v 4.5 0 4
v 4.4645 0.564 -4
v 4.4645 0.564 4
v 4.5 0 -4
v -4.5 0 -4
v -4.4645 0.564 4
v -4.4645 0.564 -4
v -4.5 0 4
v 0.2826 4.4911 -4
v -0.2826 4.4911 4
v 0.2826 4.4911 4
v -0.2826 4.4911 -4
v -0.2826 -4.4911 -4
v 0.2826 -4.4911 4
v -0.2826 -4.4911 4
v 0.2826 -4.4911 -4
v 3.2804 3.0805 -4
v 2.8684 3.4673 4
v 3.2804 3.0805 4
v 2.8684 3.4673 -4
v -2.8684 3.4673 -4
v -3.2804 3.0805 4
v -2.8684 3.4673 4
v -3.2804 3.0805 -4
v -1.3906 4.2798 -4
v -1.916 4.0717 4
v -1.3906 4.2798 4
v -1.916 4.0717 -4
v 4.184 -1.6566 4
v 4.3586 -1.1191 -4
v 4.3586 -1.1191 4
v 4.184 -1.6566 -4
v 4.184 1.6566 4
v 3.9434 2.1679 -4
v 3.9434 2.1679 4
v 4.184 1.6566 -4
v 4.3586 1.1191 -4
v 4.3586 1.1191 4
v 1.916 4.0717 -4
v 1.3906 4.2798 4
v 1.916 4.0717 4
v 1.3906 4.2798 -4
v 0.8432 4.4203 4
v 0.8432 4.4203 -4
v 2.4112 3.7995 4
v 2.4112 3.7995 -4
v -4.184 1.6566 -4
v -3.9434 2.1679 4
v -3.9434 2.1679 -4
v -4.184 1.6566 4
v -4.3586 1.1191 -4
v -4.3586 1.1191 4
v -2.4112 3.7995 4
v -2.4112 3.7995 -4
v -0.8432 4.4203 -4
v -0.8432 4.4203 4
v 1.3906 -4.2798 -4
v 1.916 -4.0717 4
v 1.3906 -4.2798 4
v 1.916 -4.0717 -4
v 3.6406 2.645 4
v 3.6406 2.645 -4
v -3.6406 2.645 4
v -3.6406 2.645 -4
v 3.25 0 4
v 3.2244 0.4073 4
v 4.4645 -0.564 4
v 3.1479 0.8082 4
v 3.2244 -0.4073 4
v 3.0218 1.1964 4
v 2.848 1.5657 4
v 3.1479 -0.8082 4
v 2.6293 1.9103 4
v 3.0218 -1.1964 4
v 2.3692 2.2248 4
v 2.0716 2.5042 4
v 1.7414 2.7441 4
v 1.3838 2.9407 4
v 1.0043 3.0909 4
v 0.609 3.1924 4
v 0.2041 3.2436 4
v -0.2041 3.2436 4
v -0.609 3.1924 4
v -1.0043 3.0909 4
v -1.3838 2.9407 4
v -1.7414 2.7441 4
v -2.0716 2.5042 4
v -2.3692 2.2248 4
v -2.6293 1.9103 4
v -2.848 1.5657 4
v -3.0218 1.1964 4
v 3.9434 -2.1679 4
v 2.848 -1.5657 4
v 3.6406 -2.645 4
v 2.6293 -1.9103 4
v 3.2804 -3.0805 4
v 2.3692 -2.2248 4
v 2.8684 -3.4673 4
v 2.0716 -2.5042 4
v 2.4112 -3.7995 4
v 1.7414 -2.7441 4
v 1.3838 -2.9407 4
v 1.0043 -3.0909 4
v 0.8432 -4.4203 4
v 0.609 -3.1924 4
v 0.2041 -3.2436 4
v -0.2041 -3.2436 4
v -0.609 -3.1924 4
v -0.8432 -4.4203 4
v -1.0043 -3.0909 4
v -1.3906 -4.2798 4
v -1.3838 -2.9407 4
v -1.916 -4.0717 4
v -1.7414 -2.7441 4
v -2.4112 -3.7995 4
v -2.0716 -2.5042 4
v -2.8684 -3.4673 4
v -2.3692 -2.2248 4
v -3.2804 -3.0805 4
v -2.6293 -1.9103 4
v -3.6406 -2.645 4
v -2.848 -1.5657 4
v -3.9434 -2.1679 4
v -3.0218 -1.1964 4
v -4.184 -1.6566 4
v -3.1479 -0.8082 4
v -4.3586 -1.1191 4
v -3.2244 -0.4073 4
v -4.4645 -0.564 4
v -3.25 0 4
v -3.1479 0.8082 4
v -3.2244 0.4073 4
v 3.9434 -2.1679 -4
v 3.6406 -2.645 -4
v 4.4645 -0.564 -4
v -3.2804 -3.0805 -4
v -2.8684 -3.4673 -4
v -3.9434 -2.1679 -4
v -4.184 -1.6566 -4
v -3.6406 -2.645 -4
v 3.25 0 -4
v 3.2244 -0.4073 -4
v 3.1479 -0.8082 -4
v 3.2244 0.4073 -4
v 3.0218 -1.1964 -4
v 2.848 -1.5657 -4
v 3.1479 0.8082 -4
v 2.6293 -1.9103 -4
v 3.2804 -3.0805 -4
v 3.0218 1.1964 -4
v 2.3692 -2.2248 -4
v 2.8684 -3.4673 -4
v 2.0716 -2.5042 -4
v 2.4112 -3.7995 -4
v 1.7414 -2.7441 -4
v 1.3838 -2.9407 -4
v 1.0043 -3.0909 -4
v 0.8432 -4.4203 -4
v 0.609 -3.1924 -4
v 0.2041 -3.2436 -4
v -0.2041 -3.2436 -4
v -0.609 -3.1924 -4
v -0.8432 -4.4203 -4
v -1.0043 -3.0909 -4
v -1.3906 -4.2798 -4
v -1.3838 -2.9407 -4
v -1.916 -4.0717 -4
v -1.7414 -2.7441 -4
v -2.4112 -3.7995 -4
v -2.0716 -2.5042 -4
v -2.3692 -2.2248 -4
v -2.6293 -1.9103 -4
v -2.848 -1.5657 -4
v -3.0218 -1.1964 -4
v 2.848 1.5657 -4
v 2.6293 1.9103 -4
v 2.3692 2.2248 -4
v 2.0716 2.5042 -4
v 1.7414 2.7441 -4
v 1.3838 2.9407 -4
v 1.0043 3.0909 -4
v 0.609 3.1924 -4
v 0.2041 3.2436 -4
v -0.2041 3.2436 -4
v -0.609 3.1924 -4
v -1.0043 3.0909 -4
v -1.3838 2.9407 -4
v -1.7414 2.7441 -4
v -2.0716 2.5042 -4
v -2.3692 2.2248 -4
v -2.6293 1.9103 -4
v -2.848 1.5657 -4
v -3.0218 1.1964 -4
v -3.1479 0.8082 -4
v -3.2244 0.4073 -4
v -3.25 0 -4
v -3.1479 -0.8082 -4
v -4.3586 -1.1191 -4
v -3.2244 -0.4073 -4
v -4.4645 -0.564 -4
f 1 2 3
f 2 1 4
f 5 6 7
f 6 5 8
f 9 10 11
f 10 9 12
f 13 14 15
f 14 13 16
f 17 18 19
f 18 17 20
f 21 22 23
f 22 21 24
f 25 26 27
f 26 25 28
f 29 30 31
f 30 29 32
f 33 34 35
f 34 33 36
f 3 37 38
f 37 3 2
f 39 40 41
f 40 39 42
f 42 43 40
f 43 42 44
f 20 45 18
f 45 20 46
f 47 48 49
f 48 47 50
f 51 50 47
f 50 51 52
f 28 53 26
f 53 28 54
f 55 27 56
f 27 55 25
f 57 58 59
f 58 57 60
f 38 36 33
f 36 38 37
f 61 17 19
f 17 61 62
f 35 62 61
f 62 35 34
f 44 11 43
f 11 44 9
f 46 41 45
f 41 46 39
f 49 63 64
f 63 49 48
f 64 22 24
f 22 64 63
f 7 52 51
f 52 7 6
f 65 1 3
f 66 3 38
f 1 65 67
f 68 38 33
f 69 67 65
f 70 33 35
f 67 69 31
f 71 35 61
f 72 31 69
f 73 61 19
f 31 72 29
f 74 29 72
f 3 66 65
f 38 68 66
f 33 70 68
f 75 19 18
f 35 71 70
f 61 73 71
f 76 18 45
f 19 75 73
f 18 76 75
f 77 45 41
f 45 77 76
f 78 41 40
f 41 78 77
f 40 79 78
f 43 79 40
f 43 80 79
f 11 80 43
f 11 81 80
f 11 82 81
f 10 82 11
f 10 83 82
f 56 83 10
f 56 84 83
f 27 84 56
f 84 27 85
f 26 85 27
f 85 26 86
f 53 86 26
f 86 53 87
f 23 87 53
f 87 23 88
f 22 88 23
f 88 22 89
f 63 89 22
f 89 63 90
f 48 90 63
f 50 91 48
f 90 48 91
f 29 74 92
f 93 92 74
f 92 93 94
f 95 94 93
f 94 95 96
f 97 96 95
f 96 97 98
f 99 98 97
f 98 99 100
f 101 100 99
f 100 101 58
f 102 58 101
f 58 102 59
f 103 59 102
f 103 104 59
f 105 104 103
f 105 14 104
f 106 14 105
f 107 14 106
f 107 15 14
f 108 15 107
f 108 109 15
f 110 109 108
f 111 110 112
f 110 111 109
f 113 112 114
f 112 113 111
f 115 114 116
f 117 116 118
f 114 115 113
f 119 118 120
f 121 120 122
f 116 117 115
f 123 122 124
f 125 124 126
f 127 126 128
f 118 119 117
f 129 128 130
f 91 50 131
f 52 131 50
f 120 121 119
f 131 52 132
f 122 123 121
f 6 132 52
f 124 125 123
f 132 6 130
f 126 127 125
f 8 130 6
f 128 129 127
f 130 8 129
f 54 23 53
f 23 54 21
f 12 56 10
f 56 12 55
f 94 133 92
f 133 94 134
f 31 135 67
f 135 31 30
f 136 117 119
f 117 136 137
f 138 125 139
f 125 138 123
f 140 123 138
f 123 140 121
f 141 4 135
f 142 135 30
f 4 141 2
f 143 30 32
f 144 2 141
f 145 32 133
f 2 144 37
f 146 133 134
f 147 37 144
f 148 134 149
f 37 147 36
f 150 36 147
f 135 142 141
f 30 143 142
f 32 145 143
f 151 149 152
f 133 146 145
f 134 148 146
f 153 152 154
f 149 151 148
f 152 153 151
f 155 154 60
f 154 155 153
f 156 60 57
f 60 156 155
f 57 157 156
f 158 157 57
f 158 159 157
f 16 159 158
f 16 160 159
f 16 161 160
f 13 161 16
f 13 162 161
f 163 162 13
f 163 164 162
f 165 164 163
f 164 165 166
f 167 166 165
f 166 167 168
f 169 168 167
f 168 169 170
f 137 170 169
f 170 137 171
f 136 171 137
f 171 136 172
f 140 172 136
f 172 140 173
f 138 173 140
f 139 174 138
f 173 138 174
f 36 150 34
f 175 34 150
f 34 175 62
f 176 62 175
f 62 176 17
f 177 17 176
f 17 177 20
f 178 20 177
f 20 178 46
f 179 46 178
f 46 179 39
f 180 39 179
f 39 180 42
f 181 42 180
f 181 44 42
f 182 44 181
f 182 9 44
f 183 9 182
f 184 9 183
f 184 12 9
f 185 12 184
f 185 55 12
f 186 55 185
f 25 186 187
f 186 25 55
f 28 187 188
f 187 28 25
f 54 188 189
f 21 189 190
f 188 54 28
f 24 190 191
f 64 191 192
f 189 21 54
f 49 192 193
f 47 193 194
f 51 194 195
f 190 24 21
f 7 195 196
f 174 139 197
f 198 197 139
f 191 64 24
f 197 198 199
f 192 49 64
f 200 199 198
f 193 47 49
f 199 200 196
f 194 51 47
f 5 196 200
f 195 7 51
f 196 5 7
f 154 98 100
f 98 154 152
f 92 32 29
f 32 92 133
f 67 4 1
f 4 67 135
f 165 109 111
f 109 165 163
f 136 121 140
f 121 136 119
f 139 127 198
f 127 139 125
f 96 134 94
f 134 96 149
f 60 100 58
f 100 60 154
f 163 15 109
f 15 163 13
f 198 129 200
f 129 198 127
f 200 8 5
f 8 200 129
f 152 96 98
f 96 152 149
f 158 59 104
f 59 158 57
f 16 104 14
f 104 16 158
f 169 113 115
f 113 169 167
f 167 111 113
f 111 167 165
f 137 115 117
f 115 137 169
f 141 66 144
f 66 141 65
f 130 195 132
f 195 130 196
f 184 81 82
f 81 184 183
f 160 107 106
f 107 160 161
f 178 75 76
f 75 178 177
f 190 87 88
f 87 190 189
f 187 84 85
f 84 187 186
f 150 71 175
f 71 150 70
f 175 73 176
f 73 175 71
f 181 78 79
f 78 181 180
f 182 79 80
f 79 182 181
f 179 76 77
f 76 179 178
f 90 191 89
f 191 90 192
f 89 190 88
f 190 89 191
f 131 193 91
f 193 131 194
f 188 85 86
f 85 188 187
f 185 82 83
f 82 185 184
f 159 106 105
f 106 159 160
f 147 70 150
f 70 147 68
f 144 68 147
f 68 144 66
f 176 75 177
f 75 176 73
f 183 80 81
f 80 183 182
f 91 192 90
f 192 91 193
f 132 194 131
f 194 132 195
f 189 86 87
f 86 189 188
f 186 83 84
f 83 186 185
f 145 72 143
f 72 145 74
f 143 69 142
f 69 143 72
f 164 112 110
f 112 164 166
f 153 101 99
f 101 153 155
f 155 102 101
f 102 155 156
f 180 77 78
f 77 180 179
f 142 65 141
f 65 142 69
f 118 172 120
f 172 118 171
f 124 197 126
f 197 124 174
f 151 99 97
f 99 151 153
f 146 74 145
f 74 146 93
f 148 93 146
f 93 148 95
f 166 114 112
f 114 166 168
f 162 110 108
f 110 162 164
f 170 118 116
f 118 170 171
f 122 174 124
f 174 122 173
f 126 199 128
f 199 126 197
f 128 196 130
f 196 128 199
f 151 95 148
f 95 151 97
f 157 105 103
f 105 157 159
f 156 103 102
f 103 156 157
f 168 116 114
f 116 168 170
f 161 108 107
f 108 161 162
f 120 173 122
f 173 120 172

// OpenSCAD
$fn = 50;


difference() {
	union() {
		translate(v = [0, 0, -4.0000000000]) {
			cylinder(h = 8, r = 4.5000000000);
		}
	}
	union() {
		translate(v = [0, 0, -100.0000000000]) {
			cylinder(h = 200, r = 3.2500000000);
		}
	}
}
